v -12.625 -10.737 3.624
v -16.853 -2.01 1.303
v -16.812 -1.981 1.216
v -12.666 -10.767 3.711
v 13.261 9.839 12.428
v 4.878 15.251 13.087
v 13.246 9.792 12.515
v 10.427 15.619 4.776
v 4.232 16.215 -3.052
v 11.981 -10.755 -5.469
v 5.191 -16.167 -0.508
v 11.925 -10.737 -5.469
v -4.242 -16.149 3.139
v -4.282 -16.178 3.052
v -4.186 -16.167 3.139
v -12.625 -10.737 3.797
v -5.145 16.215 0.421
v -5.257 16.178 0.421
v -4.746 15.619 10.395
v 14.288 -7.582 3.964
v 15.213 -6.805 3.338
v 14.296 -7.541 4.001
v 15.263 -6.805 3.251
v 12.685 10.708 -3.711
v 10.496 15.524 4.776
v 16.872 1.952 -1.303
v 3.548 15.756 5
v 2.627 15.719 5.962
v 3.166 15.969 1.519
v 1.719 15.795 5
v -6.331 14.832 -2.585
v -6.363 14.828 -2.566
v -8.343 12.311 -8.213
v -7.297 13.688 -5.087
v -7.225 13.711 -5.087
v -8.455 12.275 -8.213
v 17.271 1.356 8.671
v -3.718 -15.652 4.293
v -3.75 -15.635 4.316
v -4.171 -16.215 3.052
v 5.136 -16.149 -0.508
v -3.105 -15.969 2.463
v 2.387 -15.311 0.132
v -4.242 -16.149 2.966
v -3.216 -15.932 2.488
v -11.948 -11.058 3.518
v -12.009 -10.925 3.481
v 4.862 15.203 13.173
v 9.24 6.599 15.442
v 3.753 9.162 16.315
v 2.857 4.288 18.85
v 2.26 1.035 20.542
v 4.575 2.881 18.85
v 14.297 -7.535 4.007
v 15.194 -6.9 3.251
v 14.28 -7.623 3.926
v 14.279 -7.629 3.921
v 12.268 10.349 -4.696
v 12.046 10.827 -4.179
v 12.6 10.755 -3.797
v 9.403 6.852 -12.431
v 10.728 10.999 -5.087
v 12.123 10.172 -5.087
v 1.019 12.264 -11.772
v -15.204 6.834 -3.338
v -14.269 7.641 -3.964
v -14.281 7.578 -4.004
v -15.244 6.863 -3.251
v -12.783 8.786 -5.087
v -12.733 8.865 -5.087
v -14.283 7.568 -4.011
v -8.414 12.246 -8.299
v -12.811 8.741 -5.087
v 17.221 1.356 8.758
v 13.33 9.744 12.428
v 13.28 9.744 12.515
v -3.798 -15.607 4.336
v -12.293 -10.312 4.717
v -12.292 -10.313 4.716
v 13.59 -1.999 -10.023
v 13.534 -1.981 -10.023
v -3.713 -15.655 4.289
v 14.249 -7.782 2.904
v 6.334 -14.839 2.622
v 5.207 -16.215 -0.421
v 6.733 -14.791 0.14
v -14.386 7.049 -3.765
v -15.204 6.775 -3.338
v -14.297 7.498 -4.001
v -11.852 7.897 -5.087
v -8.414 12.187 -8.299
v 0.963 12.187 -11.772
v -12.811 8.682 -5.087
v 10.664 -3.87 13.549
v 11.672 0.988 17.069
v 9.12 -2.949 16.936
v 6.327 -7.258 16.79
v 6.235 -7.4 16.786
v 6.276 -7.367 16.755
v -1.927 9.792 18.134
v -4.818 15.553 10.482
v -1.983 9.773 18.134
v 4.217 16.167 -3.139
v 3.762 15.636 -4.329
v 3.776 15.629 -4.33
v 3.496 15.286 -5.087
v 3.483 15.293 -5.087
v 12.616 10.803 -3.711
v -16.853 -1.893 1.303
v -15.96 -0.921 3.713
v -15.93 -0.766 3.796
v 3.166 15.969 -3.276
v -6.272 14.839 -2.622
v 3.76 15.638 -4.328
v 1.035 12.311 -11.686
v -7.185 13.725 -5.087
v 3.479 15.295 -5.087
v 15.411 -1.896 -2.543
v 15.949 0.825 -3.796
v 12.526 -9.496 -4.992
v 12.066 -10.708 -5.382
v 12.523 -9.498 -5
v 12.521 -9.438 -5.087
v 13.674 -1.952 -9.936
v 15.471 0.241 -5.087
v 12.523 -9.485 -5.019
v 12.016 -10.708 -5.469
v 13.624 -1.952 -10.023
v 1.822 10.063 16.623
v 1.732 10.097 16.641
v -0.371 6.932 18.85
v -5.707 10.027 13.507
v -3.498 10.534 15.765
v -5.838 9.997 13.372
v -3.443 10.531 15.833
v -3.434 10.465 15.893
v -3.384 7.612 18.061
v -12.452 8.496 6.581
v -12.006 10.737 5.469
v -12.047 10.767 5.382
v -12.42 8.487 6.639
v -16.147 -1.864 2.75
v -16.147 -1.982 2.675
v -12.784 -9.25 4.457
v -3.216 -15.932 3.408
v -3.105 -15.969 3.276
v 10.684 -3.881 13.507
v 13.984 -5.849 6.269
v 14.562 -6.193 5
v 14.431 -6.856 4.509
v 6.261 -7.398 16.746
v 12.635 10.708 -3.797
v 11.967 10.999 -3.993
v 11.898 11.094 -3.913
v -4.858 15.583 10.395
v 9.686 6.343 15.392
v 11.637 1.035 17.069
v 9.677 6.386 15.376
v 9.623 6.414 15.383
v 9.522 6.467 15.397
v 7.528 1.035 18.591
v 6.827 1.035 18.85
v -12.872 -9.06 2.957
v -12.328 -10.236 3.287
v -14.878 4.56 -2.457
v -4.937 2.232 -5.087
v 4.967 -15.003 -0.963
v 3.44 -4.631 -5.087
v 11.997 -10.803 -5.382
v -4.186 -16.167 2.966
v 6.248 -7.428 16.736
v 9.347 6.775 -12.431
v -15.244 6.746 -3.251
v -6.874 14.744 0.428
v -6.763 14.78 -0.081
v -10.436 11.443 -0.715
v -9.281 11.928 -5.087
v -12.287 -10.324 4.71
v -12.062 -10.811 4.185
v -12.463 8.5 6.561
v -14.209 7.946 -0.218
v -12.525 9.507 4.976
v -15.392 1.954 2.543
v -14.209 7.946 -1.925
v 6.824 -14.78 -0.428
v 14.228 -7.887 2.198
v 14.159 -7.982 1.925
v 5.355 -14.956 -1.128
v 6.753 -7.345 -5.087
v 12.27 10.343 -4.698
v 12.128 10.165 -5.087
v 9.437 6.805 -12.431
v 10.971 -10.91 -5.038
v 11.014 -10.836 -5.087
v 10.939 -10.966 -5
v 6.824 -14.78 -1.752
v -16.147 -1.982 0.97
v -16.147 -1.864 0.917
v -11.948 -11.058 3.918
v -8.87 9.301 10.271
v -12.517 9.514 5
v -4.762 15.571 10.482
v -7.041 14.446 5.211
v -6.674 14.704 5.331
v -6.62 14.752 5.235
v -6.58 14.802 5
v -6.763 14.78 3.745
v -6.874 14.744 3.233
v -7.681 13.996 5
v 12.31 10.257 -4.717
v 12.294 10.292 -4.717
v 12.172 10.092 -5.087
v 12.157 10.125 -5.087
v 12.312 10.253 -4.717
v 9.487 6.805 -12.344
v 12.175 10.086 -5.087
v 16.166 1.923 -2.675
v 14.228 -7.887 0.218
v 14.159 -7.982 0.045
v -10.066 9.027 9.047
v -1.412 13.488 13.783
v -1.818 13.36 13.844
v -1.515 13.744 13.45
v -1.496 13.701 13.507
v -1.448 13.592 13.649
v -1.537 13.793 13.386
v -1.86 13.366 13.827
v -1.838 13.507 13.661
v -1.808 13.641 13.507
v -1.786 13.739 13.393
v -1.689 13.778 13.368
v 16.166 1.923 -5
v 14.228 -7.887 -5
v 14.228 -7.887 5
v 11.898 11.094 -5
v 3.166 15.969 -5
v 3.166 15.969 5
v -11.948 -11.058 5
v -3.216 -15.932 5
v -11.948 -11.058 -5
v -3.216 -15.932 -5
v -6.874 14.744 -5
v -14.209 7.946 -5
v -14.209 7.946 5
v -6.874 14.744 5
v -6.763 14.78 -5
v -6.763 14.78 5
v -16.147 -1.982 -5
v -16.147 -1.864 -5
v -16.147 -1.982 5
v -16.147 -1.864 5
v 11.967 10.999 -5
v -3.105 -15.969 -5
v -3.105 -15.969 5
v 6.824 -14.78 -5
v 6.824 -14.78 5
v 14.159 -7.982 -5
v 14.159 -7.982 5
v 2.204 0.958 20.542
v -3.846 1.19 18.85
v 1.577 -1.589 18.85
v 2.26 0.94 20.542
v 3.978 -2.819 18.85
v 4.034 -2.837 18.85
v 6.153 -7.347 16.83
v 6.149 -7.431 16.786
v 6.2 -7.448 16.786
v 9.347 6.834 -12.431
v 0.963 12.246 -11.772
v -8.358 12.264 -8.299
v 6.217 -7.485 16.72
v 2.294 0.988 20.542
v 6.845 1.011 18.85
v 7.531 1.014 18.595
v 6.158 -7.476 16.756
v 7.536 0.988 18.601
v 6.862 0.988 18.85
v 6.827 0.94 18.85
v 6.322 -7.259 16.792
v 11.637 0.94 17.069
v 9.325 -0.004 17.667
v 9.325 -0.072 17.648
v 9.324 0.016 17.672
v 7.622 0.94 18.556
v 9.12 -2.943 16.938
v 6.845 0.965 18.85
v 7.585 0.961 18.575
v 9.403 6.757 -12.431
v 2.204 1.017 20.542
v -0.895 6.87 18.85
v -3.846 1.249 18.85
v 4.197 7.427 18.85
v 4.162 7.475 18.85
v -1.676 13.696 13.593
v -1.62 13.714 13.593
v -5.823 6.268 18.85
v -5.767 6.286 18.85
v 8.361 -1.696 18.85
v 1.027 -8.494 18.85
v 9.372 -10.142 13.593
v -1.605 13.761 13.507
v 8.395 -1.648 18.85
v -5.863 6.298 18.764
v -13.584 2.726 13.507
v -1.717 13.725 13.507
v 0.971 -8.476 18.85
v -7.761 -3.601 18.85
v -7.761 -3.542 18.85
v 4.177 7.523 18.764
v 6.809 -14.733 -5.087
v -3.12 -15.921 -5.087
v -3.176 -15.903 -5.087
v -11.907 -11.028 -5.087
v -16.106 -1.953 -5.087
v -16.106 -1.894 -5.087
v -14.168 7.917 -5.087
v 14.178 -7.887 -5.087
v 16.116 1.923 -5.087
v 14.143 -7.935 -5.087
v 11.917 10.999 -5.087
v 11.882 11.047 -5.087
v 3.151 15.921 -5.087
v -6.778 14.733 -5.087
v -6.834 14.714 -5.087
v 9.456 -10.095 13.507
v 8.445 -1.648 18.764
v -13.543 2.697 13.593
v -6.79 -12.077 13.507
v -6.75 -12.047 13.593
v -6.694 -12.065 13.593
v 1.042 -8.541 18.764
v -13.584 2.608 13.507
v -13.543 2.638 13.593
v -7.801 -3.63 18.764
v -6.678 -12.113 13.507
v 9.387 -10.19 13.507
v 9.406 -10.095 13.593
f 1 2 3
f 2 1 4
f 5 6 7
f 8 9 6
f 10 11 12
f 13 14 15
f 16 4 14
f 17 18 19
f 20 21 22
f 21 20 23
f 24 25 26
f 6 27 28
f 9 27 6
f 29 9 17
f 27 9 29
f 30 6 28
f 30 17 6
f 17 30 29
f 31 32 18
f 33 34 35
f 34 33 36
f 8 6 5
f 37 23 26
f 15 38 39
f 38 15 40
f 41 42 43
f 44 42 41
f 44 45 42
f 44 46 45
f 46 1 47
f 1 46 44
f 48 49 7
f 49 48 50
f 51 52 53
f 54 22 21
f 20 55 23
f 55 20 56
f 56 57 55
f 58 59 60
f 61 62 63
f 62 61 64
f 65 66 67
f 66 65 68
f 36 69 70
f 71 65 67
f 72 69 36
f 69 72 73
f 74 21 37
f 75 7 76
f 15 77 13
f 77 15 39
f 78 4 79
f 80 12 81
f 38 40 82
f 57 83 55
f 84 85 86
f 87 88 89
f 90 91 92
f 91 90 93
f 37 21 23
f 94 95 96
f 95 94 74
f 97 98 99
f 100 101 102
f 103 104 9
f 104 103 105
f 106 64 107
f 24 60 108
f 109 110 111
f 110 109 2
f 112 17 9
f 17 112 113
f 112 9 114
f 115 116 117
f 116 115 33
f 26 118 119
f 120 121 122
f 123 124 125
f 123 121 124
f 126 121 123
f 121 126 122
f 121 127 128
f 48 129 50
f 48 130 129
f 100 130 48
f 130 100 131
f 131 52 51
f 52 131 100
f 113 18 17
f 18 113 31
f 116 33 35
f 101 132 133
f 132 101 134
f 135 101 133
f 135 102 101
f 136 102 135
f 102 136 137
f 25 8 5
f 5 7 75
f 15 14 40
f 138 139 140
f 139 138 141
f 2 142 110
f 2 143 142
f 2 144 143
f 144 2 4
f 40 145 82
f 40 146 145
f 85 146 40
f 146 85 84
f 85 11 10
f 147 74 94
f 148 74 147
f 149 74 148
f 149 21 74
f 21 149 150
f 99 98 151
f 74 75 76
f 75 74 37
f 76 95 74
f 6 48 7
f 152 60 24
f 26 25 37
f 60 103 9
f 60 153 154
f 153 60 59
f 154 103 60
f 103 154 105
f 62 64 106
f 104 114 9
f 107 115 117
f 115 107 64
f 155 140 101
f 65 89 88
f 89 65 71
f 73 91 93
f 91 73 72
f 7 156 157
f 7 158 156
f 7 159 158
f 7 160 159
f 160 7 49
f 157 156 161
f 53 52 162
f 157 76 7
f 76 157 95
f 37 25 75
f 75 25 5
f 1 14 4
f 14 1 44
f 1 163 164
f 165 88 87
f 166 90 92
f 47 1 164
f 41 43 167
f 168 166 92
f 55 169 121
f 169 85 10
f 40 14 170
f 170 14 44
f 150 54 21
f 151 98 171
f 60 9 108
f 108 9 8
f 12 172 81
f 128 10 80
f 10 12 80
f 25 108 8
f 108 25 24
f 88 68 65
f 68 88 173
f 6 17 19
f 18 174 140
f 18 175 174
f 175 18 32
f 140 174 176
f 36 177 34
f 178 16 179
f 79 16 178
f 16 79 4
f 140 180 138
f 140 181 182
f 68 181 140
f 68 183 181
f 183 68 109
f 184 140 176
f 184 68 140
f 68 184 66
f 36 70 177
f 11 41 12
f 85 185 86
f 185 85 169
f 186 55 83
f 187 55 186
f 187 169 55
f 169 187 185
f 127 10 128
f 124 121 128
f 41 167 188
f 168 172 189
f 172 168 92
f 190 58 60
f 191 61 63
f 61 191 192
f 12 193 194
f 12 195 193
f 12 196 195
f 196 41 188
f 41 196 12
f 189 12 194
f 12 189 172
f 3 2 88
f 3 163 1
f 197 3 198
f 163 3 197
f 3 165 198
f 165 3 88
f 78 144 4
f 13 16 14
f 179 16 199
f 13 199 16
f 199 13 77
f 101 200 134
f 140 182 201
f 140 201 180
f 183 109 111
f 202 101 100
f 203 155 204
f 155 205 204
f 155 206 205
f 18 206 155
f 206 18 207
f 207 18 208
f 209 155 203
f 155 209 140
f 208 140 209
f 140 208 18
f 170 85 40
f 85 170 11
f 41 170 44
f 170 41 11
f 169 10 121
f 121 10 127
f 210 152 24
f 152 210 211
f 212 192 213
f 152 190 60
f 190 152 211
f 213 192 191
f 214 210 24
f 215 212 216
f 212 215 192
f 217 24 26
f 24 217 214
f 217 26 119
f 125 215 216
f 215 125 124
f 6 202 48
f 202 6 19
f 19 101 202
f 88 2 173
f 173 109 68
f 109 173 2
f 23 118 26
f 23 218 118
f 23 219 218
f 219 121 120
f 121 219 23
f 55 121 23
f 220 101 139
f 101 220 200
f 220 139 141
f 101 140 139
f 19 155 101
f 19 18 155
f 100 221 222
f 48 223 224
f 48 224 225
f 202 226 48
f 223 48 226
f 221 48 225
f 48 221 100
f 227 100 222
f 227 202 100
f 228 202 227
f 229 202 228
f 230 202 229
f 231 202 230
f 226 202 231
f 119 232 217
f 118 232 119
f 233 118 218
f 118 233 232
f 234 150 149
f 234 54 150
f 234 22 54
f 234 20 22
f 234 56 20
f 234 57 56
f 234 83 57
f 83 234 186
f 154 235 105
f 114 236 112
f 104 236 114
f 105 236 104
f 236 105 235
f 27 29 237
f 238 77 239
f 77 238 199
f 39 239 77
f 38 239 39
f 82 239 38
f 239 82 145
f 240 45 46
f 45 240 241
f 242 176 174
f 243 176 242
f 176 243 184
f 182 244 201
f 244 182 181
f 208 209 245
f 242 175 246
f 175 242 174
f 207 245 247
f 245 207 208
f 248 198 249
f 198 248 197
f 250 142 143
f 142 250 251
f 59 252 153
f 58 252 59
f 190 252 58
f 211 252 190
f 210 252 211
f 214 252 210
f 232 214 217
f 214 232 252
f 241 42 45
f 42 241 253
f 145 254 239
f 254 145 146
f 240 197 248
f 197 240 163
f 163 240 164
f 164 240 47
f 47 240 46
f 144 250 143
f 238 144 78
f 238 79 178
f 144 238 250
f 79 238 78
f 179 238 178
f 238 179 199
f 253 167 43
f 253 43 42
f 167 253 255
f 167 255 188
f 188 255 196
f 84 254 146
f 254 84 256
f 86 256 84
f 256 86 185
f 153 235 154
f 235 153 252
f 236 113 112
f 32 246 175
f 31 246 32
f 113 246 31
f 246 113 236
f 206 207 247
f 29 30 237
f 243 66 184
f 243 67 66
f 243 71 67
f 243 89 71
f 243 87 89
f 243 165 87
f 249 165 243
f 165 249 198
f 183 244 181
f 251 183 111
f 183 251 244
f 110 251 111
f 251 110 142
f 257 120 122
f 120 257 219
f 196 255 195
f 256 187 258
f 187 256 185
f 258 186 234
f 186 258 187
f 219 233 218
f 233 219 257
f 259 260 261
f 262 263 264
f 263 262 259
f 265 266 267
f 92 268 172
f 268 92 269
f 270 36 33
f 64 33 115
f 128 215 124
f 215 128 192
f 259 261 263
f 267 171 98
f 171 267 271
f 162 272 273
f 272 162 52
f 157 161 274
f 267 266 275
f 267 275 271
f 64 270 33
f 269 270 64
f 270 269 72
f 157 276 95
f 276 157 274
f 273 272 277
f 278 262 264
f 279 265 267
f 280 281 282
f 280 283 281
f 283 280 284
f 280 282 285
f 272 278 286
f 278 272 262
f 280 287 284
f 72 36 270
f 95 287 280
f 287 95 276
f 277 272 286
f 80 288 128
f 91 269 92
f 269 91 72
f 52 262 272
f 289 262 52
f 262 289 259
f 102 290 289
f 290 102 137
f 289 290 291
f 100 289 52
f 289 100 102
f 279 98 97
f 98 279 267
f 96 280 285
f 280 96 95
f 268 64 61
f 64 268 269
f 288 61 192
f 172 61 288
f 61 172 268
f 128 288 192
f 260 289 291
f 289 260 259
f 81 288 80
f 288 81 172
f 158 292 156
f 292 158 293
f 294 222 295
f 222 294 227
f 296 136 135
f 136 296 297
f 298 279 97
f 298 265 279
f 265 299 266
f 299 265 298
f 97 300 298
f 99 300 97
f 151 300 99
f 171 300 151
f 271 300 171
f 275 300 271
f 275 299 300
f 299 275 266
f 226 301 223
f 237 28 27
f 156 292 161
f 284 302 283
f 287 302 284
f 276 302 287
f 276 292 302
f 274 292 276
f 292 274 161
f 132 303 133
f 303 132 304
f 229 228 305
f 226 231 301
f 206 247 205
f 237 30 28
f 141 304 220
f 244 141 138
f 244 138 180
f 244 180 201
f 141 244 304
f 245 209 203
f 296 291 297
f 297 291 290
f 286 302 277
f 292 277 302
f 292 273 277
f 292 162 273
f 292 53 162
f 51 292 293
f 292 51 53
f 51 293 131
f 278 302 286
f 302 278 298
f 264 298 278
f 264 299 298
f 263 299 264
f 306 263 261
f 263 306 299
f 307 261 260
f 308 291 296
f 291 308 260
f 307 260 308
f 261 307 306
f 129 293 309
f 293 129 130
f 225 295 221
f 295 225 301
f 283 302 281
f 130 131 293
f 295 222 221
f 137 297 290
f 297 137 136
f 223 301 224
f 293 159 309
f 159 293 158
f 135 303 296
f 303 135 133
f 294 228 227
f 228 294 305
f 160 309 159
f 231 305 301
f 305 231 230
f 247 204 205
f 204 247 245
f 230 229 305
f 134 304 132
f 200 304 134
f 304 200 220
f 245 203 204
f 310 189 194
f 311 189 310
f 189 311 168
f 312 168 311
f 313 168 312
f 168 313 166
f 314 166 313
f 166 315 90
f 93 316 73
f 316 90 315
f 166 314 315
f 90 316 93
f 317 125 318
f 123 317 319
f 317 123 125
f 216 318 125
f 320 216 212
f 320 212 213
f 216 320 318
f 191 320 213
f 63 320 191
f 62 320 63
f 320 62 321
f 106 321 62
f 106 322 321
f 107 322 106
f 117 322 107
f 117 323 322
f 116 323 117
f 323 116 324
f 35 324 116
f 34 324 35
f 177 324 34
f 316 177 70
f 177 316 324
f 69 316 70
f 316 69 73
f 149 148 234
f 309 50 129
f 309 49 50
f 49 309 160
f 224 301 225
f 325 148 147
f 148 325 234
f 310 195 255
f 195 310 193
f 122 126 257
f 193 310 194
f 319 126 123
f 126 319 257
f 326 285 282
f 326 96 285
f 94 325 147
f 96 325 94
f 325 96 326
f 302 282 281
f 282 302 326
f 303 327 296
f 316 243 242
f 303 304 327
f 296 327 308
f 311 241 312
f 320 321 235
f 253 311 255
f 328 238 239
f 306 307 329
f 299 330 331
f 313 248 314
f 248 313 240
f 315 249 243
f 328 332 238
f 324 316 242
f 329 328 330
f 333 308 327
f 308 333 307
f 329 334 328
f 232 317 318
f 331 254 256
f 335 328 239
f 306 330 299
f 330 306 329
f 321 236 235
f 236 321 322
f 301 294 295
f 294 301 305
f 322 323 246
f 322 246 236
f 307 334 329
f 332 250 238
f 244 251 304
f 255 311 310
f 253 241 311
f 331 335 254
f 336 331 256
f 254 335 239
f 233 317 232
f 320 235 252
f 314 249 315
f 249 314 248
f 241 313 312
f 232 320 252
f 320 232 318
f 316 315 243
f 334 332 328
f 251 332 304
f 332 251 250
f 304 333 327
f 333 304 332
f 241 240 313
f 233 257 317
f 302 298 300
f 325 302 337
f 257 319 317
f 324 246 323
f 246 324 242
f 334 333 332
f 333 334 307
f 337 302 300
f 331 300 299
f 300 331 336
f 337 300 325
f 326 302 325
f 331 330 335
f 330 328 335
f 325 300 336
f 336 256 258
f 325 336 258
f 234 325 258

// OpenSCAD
// Auto-generated OpenSCAD file

    inner_points = 10*[[1.412777650098969, -0.7887289142225774, 0.5000000000000034], [1.4127776500989218, -0.7887289142226671, -0.4999999999999966], [-1.4127776500989218, 0.7887289142226671, 0.4999999999999966], [-1.412777650098969, 0.7887289142225774, -0.5000000000000034], [1.606564352039886, 0.19231477193561908, 0.4999999999999063], [1.6065643520398385, 0.19231477193552948, -0.5000000000000936], [0.6793579043664613, -1.4685049630575326, 0.5000000000000991], [0.6793579043664137, -1.4685049630576223, -0.49999999999990086], [-0.6793579043664137, 1.4685049630576223, 0.49999999999990086], [-0.6793579043664613, 1.4685049630575326, -0.5000000000000991], [-1.6065643520398385, -0.19231477193552948, 0.5000000000000936], [-1.606564352039886, -0.19231477193561908, -0.4999999999999063], [1.186698076615527, 1.0999007517531108, 0.49999999999984507], [1.1866980766154795, 1.0999007517530213, -0.500000000000155], [-0.31355347030812525, -1.5873620286524022, 0.500000000000157], [-0.3135534703081727, -1.5873620286524917, -0.49999999999984296], [0.3135534703081727, 1.5873620286524917, 0.49999999999984296], [0.31355347030812525, 1.5873620286524022, -0.500000000000157], [-1.1866980766154795, -1.0999007517530213, 0.500000000000155], [-1.186698076615527, -1.0999007517531108, -0.49999999999984507], [0.9356314635858262, -1.0094656781426679, 1.3506508083520856], [-1.3502907928204737, 0.2667245129793352, 1.3506508083520803], [1.2491849338939751, 0.5778963505097789, 1.3506508083519289], [-0.16359271620497018, 1.3666252647324013, 1.3506508083519253], [-0.6709328884540361, -1.2017804500782423, 1.3506508083521793], [0.8345256046592242, -0.16484481465374887, 1.8763819204711487], [-0.5782520454397211, 0.6238840995688734, 1.8763819204711452], [0.10110585892671631, -0.8446208634887041, 1.8763819204712444], [-0.772038747380638, -0.35715958658932323, 1.8763819204712422], [0.41465932923486515, 0.7427411651637427, 1.8763819204710874]];

    outer_points = 10*[[1.6771921982195477, 0.19515858012450776, -0.13028218445037648], [1.3574270510105522, -0.19515858012450776, -0.9936492935329229], [-1.3574270510105522, 0.19515858012450776, 0.9936492935329229], [-1.6771921982195477, -0.19515858012450776, 0.13028218445037648], [1.2584841650715657, 1.0707777336101003, -0.3710615046307498], [0.9387190178625701, 0.6804605733610847, -1.2344286137132965], [1.516339526221925, -0.6804605733610847, 0.3251489475118551], [1.1965743790129293, -1.0707777336101003, -0.5382181615706915], [-1.1965743790129293, 1.0707777336101003, 0.5382181615706915], [-1.516339526221925, 0.6804605733610847, -0.3251489475118551], [-0.9387190178625701, -0.6804605733610847, 1.2344286137132965], [-1.2584841650715657, -1.0707777336101003, 0.3710615046307498], [0.4201476640778902, 1.6119401316646074, -0.3052194965084559], [0.10038251686889449, 1.221622971415592, -1.1685866055910024], [0.8373664026005505, -1.221622971415592, 0.8212726783812108], [0.5176012553915548, -1.6119401316646074, -0.04209443070133567], [-0.5176012553915548, 1.6119401316646074, 0.04209443070133567], [-0.8373664026005505, 1.221622971415592, -0.8212726783812108], [-0.10038251686889449, -1.221622971415592, 1.1685866055910024], [-0.4201476640778902, -1.6119401316646074, 0.3052194965084559], [1.7170785381923828, 0.1355933980850842, 0.8671450404498573], [-0.7379800058921122, 0.1355933980850842, 1.7764247066512986], [1.03959470919633, 1.552374949625184, 0.4775559166099197], [-0.47771491541871985, 1.552374949625184, 1.0395216556015694], [0.6184769467253148, -0.7400257554005085, 1.6698900996218804], [1.3230216188344461, 0.9743992445242382, 1.2428096465623142], [-0.19428800578060368, 0.9743992445242382, 1.8047753855539637], [1.1621689468368233, 0.0987800910386456, 1.6982407785245455], [0.22442002736737826, 0.0987800910386456, 2.0455547057343373], [0.4846851178407707, 1.5155616425787453, 1.308651654684608]];

    // Convex hull for inner set (I)
    module inner_hull() {
        hull() {
            for (p = inner_points) {
                translate(p) sphere(r=0.1);
            }
        }
    }

    // Convex hull for outer set (O) minus inner hull (O \ I)
    module outer_minus_inner() {
        difference() {
            hull() {
                for (p = outer_points) {
                    translate(p) sphere(r=0.1);
                }
            }
            inner_hull(); // Subtract inner hull
        }
    }

    // Convex hull for outer set (O) minus all translated inner hulls
    module outer_minus_AllTranslationInner() {
        difference() {
            hull() {
                for (p = outer_points) {
                    translate(p) sphere(r=0.1);
                }
            }
            hull() {
                translate([0,0,50]) inner_hull();
                translate([0,0,-50]) inner_hull();
            }; // Subtract translated inner hulls
        }
    }

    // Difference between outer_minus_inner and outer_minus_AllTranslationInner
    module outer_minus_inner_diff() {
        difference() {
            // Outer minus inner
            difference() {
                hull() {
                    for (p = outer_points) {
                        translate(p) sphere(r=0.1);
                    }
                }
                inner_hull();
            }

            // Subtract Outer minus AllTranslationInner
            difference() {
                hull() {
                    for (p = outer_points) {
                        translate(p) sphere(r=0.1);
                    }
                }
                hull() {
                    translate([0,0,50]) inner_hull();
                    translate([0,0,-50]) inner_hull();
                };
            }
        }
    }

    // Rendering all with colors applied
    color([1, 0, 0, 0.5]) inner_hull(); // Transparent red
    color([0, 1, 0, 1]) outer_minus_AllTranslationInner(); // Opaque green
    color([1, 1, 0, 1]) outer_minus_inner_diff(); // Opaque yellow
    
